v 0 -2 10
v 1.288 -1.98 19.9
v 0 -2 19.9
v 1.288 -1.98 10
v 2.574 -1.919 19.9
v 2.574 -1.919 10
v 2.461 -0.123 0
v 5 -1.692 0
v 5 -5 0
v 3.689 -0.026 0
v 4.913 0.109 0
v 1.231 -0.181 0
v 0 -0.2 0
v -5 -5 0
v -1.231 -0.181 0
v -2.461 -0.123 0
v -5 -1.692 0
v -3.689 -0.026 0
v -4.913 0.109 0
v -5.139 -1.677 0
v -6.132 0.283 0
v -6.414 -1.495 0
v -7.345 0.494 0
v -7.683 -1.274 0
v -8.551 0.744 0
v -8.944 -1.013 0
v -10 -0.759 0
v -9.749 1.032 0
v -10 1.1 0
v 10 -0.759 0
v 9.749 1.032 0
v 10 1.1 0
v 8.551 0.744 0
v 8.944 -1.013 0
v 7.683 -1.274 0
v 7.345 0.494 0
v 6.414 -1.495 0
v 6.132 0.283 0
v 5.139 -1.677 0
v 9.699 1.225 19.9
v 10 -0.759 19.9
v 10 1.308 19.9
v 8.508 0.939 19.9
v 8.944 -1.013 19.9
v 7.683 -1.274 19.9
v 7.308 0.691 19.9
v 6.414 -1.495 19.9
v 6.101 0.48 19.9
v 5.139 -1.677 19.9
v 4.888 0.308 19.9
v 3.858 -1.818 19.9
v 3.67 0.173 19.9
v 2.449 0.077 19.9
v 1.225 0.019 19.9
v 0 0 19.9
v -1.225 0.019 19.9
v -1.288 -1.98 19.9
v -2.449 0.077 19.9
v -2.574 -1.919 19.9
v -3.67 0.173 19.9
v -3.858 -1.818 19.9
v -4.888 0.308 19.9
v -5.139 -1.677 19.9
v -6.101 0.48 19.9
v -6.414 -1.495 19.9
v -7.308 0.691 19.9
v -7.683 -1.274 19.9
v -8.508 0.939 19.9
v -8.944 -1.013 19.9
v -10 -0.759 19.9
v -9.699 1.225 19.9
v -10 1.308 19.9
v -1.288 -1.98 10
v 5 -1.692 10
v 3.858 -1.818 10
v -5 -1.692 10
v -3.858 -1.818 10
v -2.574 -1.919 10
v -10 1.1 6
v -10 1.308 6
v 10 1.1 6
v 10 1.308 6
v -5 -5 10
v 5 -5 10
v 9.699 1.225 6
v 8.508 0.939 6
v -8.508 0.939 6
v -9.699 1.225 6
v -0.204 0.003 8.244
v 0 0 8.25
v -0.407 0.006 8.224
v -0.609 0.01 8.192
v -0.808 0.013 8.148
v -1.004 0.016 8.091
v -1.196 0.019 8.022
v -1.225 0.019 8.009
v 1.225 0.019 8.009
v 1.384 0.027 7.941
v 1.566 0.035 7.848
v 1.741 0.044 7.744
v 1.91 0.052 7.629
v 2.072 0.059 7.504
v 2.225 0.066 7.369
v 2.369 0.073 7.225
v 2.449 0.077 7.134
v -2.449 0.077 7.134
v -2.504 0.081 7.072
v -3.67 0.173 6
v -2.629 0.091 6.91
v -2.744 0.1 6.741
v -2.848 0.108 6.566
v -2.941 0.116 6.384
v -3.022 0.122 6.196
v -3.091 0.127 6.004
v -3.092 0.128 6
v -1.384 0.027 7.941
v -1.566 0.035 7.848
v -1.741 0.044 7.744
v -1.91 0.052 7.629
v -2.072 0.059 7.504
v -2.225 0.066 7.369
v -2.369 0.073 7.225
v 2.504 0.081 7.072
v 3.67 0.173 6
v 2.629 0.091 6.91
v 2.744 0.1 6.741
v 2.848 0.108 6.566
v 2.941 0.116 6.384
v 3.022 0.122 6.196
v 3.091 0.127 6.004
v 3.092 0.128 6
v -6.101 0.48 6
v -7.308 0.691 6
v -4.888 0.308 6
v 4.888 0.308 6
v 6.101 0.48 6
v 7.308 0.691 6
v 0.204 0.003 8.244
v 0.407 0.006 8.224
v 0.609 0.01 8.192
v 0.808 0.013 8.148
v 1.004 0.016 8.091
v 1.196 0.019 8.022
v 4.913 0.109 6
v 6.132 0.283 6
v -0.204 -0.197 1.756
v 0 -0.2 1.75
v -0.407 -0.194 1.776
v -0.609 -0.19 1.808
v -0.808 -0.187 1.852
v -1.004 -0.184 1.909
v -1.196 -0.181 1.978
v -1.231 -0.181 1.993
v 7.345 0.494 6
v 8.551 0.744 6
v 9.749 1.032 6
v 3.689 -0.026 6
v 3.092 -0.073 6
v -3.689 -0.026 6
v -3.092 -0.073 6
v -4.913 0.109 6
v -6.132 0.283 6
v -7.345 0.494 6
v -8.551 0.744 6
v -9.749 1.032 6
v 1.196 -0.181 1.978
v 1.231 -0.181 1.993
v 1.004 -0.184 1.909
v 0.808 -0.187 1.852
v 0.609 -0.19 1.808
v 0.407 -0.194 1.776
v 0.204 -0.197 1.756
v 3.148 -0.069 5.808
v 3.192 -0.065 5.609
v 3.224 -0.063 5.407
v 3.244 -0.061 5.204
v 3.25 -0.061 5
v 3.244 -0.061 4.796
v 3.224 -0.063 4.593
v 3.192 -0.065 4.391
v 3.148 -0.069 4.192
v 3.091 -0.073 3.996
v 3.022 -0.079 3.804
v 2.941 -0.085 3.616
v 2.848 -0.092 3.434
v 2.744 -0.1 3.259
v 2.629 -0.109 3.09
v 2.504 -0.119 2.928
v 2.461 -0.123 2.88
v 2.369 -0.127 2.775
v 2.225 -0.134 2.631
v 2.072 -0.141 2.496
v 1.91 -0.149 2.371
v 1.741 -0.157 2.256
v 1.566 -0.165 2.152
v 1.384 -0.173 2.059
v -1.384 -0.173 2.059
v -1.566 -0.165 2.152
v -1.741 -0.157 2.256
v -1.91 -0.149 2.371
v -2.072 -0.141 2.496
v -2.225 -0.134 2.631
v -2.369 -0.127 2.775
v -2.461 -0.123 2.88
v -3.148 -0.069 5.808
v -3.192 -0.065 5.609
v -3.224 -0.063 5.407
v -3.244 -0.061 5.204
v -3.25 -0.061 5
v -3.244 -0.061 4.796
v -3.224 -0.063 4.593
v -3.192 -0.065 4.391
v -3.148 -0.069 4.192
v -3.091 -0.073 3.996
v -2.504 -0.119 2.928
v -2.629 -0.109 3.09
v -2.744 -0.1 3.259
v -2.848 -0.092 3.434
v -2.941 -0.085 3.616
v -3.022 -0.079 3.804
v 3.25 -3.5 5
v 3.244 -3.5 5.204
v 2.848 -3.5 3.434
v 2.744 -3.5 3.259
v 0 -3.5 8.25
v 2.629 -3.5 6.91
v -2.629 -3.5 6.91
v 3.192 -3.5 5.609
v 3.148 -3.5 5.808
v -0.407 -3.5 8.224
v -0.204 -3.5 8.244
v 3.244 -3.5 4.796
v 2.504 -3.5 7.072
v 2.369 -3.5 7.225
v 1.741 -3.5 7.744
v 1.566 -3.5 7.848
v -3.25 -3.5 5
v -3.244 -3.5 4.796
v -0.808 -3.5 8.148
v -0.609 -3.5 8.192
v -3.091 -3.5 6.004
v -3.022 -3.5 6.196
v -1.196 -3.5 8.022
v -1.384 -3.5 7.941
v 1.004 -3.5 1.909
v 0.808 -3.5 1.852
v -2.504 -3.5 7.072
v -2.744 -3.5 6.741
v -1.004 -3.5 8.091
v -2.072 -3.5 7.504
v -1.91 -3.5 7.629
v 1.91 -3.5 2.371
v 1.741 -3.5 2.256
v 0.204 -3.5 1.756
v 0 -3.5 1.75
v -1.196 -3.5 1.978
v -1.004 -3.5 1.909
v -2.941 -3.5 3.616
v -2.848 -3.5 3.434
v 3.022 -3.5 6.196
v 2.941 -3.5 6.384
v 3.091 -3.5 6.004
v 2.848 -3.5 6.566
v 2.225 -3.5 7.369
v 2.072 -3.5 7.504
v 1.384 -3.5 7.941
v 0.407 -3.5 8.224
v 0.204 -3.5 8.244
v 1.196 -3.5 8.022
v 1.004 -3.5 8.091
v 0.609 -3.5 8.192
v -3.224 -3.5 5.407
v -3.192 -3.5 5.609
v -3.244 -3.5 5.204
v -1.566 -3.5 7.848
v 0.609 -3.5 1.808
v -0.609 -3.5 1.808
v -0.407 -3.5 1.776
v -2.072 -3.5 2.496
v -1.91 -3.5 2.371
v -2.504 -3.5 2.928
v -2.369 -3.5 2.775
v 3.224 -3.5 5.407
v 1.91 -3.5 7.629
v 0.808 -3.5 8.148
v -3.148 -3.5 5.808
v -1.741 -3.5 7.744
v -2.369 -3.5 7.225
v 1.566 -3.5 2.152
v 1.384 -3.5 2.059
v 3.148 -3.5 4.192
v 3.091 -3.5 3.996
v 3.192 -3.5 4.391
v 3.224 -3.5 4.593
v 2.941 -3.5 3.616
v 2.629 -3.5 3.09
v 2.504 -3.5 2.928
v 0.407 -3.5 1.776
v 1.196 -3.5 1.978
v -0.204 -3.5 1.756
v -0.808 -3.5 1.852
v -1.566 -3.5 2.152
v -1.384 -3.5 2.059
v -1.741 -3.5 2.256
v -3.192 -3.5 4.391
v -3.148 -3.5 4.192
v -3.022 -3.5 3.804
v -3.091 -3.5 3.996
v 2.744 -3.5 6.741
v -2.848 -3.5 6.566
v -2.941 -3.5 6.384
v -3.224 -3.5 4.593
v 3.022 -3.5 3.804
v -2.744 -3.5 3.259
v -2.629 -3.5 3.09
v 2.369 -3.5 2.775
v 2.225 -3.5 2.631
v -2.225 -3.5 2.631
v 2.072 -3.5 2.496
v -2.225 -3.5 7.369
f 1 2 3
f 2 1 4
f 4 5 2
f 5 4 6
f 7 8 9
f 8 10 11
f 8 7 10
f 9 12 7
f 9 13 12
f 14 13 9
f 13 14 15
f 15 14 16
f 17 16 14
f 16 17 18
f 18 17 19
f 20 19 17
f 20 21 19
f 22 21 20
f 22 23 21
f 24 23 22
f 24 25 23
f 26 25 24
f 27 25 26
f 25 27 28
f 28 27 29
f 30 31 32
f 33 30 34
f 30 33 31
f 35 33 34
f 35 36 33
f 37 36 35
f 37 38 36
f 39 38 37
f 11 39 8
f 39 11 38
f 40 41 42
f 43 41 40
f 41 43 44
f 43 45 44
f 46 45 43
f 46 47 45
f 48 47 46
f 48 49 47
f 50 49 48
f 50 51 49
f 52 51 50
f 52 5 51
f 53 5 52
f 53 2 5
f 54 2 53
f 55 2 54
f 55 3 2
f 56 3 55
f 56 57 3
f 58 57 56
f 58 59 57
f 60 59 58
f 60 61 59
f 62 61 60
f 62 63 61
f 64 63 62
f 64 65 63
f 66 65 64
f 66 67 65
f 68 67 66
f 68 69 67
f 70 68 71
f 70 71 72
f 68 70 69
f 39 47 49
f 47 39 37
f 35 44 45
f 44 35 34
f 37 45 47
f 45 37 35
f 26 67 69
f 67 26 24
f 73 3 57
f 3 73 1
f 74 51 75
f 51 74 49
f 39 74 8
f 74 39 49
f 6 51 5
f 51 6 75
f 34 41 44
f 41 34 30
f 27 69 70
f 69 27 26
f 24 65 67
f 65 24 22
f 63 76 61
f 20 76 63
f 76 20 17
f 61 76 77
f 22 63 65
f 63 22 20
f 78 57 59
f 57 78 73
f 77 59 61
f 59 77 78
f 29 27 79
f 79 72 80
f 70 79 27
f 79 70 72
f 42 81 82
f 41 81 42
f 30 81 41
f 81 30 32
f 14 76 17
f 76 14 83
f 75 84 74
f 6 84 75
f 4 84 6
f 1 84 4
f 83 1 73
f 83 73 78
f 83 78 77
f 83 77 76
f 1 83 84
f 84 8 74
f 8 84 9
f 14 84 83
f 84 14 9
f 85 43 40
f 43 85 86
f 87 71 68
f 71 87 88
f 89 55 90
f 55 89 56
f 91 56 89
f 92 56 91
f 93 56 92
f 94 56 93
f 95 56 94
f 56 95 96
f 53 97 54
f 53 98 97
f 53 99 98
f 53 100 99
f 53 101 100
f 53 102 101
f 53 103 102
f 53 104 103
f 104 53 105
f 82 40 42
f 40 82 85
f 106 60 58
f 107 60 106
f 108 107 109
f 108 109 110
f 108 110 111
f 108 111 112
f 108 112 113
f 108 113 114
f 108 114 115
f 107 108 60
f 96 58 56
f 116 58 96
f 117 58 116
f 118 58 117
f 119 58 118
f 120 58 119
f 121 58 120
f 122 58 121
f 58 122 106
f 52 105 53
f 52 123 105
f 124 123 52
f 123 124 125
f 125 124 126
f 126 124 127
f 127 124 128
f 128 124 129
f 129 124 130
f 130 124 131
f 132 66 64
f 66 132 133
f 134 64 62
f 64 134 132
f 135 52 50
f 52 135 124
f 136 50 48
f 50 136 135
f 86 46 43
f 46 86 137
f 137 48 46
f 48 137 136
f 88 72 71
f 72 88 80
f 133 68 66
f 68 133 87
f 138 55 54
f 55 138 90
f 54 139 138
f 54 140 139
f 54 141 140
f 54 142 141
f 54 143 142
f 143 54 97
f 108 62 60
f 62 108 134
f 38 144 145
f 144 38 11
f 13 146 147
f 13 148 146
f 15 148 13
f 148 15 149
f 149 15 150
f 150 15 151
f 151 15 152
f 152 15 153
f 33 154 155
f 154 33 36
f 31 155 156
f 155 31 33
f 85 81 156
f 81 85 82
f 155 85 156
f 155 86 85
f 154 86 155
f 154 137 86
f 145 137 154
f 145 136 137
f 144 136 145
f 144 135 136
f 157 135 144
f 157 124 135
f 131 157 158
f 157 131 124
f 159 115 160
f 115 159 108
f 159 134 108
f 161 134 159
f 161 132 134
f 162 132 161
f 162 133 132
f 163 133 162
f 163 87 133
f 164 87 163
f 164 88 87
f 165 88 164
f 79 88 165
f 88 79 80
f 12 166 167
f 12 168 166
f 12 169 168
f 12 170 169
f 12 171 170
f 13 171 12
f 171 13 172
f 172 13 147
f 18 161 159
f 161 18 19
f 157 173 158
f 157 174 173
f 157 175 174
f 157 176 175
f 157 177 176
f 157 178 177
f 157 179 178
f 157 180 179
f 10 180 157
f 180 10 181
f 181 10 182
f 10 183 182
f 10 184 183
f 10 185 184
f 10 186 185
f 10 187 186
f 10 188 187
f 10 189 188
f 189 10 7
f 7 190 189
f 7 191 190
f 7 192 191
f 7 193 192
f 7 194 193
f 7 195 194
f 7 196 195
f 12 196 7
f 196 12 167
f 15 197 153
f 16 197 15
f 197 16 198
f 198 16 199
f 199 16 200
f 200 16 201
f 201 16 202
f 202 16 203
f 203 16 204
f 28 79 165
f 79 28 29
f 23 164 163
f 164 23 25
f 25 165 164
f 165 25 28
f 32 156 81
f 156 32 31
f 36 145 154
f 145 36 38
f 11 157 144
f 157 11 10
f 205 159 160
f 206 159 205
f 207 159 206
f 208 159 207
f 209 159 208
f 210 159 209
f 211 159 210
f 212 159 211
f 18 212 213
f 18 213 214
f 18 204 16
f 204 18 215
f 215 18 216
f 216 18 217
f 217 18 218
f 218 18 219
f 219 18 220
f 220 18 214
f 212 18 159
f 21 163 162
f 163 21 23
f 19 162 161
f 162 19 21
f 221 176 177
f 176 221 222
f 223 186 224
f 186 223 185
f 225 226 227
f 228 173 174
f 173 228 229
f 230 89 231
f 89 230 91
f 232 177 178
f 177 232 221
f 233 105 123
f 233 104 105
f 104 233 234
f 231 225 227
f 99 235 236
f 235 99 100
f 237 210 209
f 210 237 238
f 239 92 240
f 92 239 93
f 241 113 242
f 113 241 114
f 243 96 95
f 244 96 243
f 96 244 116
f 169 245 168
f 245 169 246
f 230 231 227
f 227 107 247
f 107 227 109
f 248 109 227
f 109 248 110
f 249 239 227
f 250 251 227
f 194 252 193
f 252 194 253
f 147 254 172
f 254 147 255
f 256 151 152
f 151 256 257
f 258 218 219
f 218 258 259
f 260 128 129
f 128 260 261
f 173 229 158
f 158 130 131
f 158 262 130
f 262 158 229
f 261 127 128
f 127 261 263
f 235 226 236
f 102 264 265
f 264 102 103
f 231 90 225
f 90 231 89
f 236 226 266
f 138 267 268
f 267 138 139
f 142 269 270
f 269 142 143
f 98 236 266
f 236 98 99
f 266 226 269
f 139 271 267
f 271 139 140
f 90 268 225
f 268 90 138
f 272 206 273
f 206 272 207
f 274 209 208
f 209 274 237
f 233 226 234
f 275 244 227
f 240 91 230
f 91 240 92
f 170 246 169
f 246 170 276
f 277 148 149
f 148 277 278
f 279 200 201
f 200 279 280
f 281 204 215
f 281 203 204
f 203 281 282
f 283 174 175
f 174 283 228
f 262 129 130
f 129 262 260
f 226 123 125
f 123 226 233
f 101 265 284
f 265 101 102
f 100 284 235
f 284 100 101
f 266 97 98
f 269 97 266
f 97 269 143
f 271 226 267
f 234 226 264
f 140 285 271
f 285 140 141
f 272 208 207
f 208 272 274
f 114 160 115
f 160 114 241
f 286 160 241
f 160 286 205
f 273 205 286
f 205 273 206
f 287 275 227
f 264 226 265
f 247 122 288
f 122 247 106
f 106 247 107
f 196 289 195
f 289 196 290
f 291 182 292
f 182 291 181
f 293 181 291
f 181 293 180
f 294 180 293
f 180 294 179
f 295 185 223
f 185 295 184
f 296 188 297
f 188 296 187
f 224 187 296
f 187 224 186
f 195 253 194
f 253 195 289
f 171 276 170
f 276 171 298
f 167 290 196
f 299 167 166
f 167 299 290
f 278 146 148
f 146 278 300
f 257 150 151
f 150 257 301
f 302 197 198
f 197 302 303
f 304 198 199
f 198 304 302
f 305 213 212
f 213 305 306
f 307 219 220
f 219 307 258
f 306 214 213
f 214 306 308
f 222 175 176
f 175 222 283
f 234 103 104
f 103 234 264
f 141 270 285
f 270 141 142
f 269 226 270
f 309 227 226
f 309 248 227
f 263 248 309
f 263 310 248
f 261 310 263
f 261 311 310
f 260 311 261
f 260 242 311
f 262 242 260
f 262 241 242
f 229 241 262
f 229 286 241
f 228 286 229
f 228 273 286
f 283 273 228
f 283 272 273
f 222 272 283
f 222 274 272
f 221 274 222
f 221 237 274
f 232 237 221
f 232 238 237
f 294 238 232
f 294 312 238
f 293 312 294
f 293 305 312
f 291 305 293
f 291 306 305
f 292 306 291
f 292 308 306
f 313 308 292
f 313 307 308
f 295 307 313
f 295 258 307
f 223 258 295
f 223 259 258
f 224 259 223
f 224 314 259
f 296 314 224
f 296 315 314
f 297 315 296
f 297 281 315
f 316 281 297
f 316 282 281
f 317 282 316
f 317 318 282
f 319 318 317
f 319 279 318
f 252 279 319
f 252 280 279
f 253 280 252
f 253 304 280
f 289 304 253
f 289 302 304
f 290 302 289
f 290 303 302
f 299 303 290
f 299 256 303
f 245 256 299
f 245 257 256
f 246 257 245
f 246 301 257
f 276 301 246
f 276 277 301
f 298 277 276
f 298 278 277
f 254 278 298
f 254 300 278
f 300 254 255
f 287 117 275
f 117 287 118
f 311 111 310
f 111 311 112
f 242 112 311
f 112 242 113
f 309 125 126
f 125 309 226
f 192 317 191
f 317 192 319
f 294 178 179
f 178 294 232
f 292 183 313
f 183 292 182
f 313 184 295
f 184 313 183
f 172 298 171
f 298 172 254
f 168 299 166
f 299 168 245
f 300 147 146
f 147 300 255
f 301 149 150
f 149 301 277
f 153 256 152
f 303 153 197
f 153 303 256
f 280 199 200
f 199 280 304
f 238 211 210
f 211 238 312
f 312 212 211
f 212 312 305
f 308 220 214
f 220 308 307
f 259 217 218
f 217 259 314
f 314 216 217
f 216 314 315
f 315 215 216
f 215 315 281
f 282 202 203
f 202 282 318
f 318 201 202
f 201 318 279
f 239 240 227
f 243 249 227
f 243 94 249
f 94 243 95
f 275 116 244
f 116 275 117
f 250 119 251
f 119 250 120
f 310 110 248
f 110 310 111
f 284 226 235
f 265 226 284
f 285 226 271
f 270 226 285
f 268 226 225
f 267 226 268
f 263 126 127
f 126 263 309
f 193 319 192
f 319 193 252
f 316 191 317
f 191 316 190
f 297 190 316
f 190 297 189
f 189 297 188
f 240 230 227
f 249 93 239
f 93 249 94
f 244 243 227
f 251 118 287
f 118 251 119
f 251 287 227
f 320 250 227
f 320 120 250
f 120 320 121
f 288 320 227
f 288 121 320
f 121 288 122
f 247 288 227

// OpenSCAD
difference(){
    union(){
        intersection(){
            translate([0, 78/2, 0]) cylinder(20-0.1, 78/2+2, 78/2+2, $fn=200);
            translate([-10, -15, 0]) cube([20, 30, 20]);
        }
        translate([-5, -2-3,0]) cube([10, 15, 10]);
    }
translate([0, 78/2, 0]) cylinder(20, 78/2, 78/2, $fn=200);
translate([0, 78/2, 0]) cylinder(6, 78/2+0.2, 78/2+0.2, $fn=200);
translate([0,1,5]) rotate([90,0,0]) cylinder(3+1.5, 6.5/2, 6.5/2, $fn=100);
}
